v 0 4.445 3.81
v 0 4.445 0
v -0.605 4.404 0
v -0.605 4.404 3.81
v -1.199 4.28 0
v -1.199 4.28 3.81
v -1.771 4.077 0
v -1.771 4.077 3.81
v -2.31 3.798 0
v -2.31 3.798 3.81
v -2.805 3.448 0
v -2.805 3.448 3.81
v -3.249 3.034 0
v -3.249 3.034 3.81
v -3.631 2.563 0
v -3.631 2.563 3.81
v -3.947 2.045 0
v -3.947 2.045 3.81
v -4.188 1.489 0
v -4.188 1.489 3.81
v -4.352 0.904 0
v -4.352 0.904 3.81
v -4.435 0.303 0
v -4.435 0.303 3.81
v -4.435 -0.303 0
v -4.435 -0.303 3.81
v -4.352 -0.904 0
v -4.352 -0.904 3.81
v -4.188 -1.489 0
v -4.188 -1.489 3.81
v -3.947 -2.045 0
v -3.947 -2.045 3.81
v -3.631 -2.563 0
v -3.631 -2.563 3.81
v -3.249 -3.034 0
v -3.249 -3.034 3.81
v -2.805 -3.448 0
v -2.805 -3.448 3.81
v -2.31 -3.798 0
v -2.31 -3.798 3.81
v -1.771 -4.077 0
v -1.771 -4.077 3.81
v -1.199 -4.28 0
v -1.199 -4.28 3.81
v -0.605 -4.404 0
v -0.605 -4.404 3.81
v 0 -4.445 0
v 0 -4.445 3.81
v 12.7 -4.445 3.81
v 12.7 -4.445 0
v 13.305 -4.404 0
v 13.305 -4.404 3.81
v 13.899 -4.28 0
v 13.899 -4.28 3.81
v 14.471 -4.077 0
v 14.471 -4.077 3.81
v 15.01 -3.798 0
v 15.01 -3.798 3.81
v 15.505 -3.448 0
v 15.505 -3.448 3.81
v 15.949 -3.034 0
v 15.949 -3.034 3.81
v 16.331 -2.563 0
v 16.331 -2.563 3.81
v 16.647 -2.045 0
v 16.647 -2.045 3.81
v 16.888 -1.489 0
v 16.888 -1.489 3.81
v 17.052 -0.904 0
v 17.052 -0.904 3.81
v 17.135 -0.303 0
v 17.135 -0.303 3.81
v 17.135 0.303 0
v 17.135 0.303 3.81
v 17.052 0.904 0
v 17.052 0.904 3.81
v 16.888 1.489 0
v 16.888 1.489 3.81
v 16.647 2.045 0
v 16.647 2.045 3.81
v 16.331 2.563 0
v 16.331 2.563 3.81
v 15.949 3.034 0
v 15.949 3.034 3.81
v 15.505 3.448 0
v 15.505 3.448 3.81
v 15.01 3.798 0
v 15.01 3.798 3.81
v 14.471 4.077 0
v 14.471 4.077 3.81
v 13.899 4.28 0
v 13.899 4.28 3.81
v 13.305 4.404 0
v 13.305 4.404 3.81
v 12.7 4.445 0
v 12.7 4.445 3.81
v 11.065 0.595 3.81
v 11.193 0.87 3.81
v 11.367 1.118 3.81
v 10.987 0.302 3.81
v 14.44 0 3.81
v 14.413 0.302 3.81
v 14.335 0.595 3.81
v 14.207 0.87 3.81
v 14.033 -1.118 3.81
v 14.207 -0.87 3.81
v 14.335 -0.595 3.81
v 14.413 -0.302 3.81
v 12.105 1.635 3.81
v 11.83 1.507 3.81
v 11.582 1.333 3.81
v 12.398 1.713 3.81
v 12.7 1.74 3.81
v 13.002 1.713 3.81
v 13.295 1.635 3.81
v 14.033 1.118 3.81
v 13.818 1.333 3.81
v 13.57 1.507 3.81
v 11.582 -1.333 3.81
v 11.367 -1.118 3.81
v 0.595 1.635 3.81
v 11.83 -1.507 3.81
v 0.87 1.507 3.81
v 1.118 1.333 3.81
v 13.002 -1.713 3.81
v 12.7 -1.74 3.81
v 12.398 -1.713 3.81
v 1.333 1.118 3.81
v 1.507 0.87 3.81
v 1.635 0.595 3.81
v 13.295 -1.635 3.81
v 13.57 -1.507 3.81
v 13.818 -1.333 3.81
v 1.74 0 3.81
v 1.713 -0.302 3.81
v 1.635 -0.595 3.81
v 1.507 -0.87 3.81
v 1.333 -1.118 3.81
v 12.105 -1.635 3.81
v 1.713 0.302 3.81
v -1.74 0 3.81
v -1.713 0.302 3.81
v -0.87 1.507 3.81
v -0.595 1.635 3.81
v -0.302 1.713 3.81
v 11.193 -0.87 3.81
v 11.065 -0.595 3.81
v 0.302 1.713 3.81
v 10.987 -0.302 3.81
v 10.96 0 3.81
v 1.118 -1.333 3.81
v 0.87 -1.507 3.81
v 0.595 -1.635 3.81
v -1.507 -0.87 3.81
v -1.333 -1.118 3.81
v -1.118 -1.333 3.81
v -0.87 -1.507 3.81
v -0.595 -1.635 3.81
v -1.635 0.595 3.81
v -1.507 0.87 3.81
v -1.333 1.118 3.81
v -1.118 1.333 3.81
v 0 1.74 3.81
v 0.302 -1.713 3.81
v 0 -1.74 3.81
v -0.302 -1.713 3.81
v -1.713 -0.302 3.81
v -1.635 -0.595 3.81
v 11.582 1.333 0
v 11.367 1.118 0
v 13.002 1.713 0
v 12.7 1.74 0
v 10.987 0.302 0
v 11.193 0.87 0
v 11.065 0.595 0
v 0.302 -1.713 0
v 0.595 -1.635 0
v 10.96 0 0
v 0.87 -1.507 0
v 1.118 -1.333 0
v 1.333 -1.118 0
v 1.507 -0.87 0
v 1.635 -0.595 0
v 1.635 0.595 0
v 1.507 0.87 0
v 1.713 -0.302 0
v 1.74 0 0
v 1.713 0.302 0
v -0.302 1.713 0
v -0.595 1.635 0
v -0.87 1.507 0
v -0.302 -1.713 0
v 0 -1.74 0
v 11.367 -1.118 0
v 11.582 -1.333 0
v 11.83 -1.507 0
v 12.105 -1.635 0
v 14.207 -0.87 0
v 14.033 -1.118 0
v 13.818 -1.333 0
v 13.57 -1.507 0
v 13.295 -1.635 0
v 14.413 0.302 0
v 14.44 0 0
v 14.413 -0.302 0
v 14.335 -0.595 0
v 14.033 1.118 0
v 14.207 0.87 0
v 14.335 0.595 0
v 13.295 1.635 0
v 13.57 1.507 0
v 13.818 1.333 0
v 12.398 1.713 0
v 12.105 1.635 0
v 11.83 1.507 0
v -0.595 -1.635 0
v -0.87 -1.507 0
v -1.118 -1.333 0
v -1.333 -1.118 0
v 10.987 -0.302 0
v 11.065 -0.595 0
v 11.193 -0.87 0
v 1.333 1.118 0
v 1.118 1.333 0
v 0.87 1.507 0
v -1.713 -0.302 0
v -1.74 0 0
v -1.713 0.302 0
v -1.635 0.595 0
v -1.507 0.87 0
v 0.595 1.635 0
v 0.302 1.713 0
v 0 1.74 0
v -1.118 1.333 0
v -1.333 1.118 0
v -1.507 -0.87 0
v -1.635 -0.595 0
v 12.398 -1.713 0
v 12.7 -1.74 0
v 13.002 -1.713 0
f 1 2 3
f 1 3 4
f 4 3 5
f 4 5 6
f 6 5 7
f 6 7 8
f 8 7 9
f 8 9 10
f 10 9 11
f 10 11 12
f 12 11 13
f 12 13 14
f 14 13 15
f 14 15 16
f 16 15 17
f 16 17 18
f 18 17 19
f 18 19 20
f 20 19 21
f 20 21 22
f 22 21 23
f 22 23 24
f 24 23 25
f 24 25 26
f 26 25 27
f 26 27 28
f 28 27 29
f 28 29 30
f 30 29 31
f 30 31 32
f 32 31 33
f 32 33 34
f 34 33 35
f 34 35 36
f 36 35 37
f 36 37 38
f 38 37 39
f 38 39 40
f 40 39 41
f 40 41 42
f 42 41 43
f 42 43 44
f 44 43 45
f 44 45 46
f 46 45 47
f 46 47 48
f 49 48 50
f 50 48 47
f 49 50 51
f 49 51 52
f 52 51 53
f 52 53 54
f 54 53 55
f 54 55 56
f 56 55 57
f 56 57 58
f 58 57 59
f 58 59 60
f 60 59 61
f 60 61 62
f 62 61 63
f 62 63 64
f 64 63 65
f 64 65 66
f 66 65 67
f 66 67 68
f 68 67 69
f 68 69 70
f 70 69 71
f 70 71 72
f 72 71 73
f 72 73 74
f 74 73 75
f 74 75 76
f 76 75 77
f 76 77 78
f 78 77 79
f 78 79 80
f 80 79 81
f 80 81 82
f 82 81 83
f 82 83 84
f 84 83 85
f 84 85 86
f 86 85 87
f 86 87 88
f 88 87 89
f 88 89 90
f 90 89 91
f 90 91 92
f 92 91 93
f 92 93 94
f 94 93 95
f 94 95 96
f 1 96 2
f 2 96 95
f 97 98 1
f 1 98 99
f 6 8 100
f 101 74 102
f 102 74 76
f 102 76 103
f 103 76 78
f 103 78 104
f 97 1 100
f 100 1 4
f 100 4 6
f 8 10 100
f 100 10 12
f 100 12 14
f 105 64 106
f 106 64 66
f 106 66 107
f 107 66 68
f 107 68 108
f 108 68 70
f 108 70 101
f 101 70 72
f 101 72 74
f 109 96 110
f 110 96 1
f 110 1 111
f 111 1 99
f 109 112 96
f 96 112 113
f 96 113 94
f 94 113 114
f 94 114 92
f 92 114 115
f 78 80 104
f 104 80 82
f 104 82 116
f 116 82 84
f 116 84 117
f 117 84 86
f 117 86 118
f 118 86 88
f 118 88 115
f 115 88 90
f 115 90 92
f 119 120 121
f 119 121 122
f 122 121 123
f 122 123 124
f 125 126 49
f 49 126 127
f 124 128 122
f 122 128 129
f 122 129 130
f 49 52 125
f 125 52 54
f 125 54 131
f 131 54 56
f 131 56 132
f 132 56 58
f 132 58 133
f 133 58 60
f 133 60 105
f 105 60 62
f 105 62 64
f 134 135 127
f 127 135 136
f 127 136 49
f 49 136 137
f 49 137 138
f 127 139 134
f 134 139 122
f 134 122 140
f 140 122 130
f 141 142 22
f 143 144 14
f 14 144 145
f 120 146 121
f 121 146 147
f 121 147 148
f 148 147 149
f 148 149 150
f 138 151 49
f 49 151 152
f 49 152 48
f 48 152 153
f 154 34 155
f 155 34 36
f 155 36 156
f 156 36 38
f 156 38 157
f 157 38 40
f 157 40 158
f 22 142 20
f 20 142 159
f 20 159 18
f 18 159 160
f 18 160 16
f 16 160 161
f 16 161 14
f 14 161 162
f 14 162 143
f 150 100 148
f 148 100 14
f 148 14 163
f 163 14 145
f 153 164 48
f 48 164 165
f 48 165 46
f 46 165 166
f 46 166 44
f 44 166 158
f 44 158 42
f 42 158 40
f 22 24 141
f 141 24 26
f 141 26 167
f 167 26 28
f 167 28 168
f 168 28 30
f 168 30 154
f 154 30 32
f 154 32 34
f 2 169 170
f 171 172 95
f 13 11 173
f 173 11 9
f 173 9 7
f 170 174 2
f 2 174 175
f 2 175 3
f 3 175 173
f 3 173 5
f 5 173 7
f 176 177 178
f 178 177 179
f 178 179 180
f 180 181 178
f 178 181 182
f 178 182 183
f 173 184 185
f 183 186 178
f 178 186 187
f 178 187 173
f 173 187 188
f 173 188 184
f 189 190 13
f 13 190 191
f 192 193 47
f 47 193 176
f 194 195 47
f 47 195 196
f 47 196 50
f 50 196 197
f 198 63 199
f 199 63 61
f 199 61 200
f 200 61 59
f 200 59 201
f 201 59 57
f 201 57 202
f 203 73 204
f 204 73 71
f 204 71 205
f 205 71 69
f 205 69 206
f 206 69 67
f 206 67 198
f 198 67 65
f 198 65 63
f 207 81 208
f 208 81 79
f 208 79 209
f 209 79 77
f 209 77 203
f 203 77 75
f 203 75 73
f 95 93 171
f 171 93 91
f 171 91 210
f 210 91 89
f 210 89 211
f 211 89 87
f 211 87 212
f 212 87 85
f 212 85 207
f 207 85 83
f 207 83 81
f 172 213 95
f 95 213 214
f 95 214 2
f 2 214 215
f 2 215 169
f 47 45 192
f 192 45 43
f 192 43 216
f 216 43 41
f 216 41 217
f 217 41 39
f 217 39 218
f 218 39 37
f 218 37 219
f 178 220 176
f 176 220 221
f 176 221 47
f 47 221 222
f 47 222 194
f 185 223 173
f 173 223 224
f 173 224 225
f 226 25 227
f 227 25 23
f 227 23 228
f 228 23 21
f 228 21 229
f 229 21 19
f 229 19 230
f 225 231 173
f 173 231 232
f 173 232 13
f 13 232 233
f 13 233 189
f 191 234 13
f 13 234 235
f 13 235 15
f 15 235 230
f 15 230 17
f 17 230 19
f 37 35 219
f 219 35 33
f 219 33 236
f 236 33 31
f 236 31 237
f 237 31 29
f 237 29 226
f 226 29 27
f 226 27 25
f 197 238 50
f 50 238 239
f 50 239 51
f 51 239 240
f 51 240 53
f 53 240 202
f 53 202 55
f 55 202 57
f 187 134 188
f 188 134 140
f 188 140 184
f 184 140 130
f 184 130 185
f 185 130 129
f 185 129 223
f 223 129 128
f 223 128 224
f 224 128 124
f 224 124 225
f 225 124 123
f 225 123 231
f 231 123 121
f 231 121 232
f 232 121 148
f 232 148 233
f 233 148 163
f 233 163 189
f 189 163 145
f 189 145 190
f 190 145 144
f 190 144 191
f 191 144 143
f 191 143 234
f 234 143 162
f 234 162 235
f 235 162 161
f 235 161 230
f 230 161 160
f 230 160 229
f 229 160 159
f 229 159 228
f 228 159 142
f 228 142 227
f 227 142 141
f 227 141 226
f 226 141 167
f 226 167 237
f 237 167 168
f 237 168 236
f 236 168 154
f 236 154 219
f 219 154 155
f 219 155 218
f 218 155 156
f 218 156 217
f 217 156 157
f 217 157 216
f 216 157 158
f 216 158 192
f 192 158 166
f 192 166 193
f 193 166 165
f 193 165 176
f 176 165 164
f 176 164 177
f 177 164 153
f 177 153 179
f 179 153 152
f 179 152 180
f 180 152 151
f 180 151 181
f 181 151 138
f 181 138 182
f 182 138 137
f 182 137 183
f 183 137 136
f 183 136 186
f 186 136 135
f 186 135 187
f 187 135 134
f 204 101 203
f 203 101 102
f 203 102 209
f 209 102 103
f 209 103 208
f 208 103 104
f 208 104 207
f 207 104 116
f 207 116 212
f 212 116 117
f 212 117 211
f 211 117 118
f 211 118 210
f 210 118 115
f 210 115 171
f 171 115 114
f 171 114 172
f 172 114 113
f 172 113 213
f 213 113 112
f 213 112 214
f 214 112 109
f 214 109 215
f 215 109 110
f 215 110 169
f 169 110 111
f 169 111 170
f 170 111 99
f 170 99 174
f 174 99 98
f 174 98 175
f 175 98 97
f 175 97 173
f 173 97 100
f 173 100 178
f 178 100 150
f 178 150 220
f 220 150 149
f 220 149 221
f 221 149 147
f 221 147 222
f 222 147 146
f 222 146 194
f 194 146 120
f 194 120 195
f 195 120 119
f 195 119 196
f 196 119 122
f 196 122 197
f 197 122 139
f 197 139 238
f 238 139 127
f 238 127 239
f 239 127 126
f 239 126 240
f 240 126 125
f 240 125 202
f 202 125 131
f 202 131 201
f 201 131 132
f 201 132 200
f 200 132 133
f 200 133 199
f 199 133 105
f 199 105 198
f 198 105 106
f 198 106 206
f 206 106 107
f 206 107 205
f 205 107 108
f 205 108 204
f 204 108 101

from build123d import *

# Parameters (mm, degrees)
BOSS_EXTRUDE1_DEPTH = 3.81
CUT_EXTRUDE1_START  = -4.81
SKETCH2_R           = 1.7399
CUT_EXTRUDE1_DEPTH  = 5.81


with BuildPart() as part:
    # Sketch1 → Boss-Extrude1 (new body)
    with BuildSketch(Plane.XY):
        with BuildLine():
            Line((0, 4.445), (12.7, 4.445))
            ThreePointArc((12.7, 4.445), (17.145, 0), (12.7, -4.445))
            Line((12.7, -4.445), (0, -4.445))
            ThreePointArc((0, -4.445), (-4.445, 0), (0, 4.445))
        make_face()
    extrude(amount=BOSS_EXTRUDE1_DEPTH)

    # Sketch2 → Cut-Extrude1 (cut)
    with BuildSketch(Plane.XY.offset(3.81).offset(CUT_EXTRUDE1_START)):
        Circle(SKETCH2_R)
    cut_extrude1 = extrude(amount=CUT_EXTRUDE1_DEPTH, mode=Mode.SUBTRACT)

    # Mirror1: Cut-Extrude1 across plane
    add(cut_extrude1.mirror(Plane(origin=(6.35, 0, 0), x_dir=(0, 0, 1), z_dir=(1, 0, 0))), mode=Mode.SUBTRACT)


solid = part.part
